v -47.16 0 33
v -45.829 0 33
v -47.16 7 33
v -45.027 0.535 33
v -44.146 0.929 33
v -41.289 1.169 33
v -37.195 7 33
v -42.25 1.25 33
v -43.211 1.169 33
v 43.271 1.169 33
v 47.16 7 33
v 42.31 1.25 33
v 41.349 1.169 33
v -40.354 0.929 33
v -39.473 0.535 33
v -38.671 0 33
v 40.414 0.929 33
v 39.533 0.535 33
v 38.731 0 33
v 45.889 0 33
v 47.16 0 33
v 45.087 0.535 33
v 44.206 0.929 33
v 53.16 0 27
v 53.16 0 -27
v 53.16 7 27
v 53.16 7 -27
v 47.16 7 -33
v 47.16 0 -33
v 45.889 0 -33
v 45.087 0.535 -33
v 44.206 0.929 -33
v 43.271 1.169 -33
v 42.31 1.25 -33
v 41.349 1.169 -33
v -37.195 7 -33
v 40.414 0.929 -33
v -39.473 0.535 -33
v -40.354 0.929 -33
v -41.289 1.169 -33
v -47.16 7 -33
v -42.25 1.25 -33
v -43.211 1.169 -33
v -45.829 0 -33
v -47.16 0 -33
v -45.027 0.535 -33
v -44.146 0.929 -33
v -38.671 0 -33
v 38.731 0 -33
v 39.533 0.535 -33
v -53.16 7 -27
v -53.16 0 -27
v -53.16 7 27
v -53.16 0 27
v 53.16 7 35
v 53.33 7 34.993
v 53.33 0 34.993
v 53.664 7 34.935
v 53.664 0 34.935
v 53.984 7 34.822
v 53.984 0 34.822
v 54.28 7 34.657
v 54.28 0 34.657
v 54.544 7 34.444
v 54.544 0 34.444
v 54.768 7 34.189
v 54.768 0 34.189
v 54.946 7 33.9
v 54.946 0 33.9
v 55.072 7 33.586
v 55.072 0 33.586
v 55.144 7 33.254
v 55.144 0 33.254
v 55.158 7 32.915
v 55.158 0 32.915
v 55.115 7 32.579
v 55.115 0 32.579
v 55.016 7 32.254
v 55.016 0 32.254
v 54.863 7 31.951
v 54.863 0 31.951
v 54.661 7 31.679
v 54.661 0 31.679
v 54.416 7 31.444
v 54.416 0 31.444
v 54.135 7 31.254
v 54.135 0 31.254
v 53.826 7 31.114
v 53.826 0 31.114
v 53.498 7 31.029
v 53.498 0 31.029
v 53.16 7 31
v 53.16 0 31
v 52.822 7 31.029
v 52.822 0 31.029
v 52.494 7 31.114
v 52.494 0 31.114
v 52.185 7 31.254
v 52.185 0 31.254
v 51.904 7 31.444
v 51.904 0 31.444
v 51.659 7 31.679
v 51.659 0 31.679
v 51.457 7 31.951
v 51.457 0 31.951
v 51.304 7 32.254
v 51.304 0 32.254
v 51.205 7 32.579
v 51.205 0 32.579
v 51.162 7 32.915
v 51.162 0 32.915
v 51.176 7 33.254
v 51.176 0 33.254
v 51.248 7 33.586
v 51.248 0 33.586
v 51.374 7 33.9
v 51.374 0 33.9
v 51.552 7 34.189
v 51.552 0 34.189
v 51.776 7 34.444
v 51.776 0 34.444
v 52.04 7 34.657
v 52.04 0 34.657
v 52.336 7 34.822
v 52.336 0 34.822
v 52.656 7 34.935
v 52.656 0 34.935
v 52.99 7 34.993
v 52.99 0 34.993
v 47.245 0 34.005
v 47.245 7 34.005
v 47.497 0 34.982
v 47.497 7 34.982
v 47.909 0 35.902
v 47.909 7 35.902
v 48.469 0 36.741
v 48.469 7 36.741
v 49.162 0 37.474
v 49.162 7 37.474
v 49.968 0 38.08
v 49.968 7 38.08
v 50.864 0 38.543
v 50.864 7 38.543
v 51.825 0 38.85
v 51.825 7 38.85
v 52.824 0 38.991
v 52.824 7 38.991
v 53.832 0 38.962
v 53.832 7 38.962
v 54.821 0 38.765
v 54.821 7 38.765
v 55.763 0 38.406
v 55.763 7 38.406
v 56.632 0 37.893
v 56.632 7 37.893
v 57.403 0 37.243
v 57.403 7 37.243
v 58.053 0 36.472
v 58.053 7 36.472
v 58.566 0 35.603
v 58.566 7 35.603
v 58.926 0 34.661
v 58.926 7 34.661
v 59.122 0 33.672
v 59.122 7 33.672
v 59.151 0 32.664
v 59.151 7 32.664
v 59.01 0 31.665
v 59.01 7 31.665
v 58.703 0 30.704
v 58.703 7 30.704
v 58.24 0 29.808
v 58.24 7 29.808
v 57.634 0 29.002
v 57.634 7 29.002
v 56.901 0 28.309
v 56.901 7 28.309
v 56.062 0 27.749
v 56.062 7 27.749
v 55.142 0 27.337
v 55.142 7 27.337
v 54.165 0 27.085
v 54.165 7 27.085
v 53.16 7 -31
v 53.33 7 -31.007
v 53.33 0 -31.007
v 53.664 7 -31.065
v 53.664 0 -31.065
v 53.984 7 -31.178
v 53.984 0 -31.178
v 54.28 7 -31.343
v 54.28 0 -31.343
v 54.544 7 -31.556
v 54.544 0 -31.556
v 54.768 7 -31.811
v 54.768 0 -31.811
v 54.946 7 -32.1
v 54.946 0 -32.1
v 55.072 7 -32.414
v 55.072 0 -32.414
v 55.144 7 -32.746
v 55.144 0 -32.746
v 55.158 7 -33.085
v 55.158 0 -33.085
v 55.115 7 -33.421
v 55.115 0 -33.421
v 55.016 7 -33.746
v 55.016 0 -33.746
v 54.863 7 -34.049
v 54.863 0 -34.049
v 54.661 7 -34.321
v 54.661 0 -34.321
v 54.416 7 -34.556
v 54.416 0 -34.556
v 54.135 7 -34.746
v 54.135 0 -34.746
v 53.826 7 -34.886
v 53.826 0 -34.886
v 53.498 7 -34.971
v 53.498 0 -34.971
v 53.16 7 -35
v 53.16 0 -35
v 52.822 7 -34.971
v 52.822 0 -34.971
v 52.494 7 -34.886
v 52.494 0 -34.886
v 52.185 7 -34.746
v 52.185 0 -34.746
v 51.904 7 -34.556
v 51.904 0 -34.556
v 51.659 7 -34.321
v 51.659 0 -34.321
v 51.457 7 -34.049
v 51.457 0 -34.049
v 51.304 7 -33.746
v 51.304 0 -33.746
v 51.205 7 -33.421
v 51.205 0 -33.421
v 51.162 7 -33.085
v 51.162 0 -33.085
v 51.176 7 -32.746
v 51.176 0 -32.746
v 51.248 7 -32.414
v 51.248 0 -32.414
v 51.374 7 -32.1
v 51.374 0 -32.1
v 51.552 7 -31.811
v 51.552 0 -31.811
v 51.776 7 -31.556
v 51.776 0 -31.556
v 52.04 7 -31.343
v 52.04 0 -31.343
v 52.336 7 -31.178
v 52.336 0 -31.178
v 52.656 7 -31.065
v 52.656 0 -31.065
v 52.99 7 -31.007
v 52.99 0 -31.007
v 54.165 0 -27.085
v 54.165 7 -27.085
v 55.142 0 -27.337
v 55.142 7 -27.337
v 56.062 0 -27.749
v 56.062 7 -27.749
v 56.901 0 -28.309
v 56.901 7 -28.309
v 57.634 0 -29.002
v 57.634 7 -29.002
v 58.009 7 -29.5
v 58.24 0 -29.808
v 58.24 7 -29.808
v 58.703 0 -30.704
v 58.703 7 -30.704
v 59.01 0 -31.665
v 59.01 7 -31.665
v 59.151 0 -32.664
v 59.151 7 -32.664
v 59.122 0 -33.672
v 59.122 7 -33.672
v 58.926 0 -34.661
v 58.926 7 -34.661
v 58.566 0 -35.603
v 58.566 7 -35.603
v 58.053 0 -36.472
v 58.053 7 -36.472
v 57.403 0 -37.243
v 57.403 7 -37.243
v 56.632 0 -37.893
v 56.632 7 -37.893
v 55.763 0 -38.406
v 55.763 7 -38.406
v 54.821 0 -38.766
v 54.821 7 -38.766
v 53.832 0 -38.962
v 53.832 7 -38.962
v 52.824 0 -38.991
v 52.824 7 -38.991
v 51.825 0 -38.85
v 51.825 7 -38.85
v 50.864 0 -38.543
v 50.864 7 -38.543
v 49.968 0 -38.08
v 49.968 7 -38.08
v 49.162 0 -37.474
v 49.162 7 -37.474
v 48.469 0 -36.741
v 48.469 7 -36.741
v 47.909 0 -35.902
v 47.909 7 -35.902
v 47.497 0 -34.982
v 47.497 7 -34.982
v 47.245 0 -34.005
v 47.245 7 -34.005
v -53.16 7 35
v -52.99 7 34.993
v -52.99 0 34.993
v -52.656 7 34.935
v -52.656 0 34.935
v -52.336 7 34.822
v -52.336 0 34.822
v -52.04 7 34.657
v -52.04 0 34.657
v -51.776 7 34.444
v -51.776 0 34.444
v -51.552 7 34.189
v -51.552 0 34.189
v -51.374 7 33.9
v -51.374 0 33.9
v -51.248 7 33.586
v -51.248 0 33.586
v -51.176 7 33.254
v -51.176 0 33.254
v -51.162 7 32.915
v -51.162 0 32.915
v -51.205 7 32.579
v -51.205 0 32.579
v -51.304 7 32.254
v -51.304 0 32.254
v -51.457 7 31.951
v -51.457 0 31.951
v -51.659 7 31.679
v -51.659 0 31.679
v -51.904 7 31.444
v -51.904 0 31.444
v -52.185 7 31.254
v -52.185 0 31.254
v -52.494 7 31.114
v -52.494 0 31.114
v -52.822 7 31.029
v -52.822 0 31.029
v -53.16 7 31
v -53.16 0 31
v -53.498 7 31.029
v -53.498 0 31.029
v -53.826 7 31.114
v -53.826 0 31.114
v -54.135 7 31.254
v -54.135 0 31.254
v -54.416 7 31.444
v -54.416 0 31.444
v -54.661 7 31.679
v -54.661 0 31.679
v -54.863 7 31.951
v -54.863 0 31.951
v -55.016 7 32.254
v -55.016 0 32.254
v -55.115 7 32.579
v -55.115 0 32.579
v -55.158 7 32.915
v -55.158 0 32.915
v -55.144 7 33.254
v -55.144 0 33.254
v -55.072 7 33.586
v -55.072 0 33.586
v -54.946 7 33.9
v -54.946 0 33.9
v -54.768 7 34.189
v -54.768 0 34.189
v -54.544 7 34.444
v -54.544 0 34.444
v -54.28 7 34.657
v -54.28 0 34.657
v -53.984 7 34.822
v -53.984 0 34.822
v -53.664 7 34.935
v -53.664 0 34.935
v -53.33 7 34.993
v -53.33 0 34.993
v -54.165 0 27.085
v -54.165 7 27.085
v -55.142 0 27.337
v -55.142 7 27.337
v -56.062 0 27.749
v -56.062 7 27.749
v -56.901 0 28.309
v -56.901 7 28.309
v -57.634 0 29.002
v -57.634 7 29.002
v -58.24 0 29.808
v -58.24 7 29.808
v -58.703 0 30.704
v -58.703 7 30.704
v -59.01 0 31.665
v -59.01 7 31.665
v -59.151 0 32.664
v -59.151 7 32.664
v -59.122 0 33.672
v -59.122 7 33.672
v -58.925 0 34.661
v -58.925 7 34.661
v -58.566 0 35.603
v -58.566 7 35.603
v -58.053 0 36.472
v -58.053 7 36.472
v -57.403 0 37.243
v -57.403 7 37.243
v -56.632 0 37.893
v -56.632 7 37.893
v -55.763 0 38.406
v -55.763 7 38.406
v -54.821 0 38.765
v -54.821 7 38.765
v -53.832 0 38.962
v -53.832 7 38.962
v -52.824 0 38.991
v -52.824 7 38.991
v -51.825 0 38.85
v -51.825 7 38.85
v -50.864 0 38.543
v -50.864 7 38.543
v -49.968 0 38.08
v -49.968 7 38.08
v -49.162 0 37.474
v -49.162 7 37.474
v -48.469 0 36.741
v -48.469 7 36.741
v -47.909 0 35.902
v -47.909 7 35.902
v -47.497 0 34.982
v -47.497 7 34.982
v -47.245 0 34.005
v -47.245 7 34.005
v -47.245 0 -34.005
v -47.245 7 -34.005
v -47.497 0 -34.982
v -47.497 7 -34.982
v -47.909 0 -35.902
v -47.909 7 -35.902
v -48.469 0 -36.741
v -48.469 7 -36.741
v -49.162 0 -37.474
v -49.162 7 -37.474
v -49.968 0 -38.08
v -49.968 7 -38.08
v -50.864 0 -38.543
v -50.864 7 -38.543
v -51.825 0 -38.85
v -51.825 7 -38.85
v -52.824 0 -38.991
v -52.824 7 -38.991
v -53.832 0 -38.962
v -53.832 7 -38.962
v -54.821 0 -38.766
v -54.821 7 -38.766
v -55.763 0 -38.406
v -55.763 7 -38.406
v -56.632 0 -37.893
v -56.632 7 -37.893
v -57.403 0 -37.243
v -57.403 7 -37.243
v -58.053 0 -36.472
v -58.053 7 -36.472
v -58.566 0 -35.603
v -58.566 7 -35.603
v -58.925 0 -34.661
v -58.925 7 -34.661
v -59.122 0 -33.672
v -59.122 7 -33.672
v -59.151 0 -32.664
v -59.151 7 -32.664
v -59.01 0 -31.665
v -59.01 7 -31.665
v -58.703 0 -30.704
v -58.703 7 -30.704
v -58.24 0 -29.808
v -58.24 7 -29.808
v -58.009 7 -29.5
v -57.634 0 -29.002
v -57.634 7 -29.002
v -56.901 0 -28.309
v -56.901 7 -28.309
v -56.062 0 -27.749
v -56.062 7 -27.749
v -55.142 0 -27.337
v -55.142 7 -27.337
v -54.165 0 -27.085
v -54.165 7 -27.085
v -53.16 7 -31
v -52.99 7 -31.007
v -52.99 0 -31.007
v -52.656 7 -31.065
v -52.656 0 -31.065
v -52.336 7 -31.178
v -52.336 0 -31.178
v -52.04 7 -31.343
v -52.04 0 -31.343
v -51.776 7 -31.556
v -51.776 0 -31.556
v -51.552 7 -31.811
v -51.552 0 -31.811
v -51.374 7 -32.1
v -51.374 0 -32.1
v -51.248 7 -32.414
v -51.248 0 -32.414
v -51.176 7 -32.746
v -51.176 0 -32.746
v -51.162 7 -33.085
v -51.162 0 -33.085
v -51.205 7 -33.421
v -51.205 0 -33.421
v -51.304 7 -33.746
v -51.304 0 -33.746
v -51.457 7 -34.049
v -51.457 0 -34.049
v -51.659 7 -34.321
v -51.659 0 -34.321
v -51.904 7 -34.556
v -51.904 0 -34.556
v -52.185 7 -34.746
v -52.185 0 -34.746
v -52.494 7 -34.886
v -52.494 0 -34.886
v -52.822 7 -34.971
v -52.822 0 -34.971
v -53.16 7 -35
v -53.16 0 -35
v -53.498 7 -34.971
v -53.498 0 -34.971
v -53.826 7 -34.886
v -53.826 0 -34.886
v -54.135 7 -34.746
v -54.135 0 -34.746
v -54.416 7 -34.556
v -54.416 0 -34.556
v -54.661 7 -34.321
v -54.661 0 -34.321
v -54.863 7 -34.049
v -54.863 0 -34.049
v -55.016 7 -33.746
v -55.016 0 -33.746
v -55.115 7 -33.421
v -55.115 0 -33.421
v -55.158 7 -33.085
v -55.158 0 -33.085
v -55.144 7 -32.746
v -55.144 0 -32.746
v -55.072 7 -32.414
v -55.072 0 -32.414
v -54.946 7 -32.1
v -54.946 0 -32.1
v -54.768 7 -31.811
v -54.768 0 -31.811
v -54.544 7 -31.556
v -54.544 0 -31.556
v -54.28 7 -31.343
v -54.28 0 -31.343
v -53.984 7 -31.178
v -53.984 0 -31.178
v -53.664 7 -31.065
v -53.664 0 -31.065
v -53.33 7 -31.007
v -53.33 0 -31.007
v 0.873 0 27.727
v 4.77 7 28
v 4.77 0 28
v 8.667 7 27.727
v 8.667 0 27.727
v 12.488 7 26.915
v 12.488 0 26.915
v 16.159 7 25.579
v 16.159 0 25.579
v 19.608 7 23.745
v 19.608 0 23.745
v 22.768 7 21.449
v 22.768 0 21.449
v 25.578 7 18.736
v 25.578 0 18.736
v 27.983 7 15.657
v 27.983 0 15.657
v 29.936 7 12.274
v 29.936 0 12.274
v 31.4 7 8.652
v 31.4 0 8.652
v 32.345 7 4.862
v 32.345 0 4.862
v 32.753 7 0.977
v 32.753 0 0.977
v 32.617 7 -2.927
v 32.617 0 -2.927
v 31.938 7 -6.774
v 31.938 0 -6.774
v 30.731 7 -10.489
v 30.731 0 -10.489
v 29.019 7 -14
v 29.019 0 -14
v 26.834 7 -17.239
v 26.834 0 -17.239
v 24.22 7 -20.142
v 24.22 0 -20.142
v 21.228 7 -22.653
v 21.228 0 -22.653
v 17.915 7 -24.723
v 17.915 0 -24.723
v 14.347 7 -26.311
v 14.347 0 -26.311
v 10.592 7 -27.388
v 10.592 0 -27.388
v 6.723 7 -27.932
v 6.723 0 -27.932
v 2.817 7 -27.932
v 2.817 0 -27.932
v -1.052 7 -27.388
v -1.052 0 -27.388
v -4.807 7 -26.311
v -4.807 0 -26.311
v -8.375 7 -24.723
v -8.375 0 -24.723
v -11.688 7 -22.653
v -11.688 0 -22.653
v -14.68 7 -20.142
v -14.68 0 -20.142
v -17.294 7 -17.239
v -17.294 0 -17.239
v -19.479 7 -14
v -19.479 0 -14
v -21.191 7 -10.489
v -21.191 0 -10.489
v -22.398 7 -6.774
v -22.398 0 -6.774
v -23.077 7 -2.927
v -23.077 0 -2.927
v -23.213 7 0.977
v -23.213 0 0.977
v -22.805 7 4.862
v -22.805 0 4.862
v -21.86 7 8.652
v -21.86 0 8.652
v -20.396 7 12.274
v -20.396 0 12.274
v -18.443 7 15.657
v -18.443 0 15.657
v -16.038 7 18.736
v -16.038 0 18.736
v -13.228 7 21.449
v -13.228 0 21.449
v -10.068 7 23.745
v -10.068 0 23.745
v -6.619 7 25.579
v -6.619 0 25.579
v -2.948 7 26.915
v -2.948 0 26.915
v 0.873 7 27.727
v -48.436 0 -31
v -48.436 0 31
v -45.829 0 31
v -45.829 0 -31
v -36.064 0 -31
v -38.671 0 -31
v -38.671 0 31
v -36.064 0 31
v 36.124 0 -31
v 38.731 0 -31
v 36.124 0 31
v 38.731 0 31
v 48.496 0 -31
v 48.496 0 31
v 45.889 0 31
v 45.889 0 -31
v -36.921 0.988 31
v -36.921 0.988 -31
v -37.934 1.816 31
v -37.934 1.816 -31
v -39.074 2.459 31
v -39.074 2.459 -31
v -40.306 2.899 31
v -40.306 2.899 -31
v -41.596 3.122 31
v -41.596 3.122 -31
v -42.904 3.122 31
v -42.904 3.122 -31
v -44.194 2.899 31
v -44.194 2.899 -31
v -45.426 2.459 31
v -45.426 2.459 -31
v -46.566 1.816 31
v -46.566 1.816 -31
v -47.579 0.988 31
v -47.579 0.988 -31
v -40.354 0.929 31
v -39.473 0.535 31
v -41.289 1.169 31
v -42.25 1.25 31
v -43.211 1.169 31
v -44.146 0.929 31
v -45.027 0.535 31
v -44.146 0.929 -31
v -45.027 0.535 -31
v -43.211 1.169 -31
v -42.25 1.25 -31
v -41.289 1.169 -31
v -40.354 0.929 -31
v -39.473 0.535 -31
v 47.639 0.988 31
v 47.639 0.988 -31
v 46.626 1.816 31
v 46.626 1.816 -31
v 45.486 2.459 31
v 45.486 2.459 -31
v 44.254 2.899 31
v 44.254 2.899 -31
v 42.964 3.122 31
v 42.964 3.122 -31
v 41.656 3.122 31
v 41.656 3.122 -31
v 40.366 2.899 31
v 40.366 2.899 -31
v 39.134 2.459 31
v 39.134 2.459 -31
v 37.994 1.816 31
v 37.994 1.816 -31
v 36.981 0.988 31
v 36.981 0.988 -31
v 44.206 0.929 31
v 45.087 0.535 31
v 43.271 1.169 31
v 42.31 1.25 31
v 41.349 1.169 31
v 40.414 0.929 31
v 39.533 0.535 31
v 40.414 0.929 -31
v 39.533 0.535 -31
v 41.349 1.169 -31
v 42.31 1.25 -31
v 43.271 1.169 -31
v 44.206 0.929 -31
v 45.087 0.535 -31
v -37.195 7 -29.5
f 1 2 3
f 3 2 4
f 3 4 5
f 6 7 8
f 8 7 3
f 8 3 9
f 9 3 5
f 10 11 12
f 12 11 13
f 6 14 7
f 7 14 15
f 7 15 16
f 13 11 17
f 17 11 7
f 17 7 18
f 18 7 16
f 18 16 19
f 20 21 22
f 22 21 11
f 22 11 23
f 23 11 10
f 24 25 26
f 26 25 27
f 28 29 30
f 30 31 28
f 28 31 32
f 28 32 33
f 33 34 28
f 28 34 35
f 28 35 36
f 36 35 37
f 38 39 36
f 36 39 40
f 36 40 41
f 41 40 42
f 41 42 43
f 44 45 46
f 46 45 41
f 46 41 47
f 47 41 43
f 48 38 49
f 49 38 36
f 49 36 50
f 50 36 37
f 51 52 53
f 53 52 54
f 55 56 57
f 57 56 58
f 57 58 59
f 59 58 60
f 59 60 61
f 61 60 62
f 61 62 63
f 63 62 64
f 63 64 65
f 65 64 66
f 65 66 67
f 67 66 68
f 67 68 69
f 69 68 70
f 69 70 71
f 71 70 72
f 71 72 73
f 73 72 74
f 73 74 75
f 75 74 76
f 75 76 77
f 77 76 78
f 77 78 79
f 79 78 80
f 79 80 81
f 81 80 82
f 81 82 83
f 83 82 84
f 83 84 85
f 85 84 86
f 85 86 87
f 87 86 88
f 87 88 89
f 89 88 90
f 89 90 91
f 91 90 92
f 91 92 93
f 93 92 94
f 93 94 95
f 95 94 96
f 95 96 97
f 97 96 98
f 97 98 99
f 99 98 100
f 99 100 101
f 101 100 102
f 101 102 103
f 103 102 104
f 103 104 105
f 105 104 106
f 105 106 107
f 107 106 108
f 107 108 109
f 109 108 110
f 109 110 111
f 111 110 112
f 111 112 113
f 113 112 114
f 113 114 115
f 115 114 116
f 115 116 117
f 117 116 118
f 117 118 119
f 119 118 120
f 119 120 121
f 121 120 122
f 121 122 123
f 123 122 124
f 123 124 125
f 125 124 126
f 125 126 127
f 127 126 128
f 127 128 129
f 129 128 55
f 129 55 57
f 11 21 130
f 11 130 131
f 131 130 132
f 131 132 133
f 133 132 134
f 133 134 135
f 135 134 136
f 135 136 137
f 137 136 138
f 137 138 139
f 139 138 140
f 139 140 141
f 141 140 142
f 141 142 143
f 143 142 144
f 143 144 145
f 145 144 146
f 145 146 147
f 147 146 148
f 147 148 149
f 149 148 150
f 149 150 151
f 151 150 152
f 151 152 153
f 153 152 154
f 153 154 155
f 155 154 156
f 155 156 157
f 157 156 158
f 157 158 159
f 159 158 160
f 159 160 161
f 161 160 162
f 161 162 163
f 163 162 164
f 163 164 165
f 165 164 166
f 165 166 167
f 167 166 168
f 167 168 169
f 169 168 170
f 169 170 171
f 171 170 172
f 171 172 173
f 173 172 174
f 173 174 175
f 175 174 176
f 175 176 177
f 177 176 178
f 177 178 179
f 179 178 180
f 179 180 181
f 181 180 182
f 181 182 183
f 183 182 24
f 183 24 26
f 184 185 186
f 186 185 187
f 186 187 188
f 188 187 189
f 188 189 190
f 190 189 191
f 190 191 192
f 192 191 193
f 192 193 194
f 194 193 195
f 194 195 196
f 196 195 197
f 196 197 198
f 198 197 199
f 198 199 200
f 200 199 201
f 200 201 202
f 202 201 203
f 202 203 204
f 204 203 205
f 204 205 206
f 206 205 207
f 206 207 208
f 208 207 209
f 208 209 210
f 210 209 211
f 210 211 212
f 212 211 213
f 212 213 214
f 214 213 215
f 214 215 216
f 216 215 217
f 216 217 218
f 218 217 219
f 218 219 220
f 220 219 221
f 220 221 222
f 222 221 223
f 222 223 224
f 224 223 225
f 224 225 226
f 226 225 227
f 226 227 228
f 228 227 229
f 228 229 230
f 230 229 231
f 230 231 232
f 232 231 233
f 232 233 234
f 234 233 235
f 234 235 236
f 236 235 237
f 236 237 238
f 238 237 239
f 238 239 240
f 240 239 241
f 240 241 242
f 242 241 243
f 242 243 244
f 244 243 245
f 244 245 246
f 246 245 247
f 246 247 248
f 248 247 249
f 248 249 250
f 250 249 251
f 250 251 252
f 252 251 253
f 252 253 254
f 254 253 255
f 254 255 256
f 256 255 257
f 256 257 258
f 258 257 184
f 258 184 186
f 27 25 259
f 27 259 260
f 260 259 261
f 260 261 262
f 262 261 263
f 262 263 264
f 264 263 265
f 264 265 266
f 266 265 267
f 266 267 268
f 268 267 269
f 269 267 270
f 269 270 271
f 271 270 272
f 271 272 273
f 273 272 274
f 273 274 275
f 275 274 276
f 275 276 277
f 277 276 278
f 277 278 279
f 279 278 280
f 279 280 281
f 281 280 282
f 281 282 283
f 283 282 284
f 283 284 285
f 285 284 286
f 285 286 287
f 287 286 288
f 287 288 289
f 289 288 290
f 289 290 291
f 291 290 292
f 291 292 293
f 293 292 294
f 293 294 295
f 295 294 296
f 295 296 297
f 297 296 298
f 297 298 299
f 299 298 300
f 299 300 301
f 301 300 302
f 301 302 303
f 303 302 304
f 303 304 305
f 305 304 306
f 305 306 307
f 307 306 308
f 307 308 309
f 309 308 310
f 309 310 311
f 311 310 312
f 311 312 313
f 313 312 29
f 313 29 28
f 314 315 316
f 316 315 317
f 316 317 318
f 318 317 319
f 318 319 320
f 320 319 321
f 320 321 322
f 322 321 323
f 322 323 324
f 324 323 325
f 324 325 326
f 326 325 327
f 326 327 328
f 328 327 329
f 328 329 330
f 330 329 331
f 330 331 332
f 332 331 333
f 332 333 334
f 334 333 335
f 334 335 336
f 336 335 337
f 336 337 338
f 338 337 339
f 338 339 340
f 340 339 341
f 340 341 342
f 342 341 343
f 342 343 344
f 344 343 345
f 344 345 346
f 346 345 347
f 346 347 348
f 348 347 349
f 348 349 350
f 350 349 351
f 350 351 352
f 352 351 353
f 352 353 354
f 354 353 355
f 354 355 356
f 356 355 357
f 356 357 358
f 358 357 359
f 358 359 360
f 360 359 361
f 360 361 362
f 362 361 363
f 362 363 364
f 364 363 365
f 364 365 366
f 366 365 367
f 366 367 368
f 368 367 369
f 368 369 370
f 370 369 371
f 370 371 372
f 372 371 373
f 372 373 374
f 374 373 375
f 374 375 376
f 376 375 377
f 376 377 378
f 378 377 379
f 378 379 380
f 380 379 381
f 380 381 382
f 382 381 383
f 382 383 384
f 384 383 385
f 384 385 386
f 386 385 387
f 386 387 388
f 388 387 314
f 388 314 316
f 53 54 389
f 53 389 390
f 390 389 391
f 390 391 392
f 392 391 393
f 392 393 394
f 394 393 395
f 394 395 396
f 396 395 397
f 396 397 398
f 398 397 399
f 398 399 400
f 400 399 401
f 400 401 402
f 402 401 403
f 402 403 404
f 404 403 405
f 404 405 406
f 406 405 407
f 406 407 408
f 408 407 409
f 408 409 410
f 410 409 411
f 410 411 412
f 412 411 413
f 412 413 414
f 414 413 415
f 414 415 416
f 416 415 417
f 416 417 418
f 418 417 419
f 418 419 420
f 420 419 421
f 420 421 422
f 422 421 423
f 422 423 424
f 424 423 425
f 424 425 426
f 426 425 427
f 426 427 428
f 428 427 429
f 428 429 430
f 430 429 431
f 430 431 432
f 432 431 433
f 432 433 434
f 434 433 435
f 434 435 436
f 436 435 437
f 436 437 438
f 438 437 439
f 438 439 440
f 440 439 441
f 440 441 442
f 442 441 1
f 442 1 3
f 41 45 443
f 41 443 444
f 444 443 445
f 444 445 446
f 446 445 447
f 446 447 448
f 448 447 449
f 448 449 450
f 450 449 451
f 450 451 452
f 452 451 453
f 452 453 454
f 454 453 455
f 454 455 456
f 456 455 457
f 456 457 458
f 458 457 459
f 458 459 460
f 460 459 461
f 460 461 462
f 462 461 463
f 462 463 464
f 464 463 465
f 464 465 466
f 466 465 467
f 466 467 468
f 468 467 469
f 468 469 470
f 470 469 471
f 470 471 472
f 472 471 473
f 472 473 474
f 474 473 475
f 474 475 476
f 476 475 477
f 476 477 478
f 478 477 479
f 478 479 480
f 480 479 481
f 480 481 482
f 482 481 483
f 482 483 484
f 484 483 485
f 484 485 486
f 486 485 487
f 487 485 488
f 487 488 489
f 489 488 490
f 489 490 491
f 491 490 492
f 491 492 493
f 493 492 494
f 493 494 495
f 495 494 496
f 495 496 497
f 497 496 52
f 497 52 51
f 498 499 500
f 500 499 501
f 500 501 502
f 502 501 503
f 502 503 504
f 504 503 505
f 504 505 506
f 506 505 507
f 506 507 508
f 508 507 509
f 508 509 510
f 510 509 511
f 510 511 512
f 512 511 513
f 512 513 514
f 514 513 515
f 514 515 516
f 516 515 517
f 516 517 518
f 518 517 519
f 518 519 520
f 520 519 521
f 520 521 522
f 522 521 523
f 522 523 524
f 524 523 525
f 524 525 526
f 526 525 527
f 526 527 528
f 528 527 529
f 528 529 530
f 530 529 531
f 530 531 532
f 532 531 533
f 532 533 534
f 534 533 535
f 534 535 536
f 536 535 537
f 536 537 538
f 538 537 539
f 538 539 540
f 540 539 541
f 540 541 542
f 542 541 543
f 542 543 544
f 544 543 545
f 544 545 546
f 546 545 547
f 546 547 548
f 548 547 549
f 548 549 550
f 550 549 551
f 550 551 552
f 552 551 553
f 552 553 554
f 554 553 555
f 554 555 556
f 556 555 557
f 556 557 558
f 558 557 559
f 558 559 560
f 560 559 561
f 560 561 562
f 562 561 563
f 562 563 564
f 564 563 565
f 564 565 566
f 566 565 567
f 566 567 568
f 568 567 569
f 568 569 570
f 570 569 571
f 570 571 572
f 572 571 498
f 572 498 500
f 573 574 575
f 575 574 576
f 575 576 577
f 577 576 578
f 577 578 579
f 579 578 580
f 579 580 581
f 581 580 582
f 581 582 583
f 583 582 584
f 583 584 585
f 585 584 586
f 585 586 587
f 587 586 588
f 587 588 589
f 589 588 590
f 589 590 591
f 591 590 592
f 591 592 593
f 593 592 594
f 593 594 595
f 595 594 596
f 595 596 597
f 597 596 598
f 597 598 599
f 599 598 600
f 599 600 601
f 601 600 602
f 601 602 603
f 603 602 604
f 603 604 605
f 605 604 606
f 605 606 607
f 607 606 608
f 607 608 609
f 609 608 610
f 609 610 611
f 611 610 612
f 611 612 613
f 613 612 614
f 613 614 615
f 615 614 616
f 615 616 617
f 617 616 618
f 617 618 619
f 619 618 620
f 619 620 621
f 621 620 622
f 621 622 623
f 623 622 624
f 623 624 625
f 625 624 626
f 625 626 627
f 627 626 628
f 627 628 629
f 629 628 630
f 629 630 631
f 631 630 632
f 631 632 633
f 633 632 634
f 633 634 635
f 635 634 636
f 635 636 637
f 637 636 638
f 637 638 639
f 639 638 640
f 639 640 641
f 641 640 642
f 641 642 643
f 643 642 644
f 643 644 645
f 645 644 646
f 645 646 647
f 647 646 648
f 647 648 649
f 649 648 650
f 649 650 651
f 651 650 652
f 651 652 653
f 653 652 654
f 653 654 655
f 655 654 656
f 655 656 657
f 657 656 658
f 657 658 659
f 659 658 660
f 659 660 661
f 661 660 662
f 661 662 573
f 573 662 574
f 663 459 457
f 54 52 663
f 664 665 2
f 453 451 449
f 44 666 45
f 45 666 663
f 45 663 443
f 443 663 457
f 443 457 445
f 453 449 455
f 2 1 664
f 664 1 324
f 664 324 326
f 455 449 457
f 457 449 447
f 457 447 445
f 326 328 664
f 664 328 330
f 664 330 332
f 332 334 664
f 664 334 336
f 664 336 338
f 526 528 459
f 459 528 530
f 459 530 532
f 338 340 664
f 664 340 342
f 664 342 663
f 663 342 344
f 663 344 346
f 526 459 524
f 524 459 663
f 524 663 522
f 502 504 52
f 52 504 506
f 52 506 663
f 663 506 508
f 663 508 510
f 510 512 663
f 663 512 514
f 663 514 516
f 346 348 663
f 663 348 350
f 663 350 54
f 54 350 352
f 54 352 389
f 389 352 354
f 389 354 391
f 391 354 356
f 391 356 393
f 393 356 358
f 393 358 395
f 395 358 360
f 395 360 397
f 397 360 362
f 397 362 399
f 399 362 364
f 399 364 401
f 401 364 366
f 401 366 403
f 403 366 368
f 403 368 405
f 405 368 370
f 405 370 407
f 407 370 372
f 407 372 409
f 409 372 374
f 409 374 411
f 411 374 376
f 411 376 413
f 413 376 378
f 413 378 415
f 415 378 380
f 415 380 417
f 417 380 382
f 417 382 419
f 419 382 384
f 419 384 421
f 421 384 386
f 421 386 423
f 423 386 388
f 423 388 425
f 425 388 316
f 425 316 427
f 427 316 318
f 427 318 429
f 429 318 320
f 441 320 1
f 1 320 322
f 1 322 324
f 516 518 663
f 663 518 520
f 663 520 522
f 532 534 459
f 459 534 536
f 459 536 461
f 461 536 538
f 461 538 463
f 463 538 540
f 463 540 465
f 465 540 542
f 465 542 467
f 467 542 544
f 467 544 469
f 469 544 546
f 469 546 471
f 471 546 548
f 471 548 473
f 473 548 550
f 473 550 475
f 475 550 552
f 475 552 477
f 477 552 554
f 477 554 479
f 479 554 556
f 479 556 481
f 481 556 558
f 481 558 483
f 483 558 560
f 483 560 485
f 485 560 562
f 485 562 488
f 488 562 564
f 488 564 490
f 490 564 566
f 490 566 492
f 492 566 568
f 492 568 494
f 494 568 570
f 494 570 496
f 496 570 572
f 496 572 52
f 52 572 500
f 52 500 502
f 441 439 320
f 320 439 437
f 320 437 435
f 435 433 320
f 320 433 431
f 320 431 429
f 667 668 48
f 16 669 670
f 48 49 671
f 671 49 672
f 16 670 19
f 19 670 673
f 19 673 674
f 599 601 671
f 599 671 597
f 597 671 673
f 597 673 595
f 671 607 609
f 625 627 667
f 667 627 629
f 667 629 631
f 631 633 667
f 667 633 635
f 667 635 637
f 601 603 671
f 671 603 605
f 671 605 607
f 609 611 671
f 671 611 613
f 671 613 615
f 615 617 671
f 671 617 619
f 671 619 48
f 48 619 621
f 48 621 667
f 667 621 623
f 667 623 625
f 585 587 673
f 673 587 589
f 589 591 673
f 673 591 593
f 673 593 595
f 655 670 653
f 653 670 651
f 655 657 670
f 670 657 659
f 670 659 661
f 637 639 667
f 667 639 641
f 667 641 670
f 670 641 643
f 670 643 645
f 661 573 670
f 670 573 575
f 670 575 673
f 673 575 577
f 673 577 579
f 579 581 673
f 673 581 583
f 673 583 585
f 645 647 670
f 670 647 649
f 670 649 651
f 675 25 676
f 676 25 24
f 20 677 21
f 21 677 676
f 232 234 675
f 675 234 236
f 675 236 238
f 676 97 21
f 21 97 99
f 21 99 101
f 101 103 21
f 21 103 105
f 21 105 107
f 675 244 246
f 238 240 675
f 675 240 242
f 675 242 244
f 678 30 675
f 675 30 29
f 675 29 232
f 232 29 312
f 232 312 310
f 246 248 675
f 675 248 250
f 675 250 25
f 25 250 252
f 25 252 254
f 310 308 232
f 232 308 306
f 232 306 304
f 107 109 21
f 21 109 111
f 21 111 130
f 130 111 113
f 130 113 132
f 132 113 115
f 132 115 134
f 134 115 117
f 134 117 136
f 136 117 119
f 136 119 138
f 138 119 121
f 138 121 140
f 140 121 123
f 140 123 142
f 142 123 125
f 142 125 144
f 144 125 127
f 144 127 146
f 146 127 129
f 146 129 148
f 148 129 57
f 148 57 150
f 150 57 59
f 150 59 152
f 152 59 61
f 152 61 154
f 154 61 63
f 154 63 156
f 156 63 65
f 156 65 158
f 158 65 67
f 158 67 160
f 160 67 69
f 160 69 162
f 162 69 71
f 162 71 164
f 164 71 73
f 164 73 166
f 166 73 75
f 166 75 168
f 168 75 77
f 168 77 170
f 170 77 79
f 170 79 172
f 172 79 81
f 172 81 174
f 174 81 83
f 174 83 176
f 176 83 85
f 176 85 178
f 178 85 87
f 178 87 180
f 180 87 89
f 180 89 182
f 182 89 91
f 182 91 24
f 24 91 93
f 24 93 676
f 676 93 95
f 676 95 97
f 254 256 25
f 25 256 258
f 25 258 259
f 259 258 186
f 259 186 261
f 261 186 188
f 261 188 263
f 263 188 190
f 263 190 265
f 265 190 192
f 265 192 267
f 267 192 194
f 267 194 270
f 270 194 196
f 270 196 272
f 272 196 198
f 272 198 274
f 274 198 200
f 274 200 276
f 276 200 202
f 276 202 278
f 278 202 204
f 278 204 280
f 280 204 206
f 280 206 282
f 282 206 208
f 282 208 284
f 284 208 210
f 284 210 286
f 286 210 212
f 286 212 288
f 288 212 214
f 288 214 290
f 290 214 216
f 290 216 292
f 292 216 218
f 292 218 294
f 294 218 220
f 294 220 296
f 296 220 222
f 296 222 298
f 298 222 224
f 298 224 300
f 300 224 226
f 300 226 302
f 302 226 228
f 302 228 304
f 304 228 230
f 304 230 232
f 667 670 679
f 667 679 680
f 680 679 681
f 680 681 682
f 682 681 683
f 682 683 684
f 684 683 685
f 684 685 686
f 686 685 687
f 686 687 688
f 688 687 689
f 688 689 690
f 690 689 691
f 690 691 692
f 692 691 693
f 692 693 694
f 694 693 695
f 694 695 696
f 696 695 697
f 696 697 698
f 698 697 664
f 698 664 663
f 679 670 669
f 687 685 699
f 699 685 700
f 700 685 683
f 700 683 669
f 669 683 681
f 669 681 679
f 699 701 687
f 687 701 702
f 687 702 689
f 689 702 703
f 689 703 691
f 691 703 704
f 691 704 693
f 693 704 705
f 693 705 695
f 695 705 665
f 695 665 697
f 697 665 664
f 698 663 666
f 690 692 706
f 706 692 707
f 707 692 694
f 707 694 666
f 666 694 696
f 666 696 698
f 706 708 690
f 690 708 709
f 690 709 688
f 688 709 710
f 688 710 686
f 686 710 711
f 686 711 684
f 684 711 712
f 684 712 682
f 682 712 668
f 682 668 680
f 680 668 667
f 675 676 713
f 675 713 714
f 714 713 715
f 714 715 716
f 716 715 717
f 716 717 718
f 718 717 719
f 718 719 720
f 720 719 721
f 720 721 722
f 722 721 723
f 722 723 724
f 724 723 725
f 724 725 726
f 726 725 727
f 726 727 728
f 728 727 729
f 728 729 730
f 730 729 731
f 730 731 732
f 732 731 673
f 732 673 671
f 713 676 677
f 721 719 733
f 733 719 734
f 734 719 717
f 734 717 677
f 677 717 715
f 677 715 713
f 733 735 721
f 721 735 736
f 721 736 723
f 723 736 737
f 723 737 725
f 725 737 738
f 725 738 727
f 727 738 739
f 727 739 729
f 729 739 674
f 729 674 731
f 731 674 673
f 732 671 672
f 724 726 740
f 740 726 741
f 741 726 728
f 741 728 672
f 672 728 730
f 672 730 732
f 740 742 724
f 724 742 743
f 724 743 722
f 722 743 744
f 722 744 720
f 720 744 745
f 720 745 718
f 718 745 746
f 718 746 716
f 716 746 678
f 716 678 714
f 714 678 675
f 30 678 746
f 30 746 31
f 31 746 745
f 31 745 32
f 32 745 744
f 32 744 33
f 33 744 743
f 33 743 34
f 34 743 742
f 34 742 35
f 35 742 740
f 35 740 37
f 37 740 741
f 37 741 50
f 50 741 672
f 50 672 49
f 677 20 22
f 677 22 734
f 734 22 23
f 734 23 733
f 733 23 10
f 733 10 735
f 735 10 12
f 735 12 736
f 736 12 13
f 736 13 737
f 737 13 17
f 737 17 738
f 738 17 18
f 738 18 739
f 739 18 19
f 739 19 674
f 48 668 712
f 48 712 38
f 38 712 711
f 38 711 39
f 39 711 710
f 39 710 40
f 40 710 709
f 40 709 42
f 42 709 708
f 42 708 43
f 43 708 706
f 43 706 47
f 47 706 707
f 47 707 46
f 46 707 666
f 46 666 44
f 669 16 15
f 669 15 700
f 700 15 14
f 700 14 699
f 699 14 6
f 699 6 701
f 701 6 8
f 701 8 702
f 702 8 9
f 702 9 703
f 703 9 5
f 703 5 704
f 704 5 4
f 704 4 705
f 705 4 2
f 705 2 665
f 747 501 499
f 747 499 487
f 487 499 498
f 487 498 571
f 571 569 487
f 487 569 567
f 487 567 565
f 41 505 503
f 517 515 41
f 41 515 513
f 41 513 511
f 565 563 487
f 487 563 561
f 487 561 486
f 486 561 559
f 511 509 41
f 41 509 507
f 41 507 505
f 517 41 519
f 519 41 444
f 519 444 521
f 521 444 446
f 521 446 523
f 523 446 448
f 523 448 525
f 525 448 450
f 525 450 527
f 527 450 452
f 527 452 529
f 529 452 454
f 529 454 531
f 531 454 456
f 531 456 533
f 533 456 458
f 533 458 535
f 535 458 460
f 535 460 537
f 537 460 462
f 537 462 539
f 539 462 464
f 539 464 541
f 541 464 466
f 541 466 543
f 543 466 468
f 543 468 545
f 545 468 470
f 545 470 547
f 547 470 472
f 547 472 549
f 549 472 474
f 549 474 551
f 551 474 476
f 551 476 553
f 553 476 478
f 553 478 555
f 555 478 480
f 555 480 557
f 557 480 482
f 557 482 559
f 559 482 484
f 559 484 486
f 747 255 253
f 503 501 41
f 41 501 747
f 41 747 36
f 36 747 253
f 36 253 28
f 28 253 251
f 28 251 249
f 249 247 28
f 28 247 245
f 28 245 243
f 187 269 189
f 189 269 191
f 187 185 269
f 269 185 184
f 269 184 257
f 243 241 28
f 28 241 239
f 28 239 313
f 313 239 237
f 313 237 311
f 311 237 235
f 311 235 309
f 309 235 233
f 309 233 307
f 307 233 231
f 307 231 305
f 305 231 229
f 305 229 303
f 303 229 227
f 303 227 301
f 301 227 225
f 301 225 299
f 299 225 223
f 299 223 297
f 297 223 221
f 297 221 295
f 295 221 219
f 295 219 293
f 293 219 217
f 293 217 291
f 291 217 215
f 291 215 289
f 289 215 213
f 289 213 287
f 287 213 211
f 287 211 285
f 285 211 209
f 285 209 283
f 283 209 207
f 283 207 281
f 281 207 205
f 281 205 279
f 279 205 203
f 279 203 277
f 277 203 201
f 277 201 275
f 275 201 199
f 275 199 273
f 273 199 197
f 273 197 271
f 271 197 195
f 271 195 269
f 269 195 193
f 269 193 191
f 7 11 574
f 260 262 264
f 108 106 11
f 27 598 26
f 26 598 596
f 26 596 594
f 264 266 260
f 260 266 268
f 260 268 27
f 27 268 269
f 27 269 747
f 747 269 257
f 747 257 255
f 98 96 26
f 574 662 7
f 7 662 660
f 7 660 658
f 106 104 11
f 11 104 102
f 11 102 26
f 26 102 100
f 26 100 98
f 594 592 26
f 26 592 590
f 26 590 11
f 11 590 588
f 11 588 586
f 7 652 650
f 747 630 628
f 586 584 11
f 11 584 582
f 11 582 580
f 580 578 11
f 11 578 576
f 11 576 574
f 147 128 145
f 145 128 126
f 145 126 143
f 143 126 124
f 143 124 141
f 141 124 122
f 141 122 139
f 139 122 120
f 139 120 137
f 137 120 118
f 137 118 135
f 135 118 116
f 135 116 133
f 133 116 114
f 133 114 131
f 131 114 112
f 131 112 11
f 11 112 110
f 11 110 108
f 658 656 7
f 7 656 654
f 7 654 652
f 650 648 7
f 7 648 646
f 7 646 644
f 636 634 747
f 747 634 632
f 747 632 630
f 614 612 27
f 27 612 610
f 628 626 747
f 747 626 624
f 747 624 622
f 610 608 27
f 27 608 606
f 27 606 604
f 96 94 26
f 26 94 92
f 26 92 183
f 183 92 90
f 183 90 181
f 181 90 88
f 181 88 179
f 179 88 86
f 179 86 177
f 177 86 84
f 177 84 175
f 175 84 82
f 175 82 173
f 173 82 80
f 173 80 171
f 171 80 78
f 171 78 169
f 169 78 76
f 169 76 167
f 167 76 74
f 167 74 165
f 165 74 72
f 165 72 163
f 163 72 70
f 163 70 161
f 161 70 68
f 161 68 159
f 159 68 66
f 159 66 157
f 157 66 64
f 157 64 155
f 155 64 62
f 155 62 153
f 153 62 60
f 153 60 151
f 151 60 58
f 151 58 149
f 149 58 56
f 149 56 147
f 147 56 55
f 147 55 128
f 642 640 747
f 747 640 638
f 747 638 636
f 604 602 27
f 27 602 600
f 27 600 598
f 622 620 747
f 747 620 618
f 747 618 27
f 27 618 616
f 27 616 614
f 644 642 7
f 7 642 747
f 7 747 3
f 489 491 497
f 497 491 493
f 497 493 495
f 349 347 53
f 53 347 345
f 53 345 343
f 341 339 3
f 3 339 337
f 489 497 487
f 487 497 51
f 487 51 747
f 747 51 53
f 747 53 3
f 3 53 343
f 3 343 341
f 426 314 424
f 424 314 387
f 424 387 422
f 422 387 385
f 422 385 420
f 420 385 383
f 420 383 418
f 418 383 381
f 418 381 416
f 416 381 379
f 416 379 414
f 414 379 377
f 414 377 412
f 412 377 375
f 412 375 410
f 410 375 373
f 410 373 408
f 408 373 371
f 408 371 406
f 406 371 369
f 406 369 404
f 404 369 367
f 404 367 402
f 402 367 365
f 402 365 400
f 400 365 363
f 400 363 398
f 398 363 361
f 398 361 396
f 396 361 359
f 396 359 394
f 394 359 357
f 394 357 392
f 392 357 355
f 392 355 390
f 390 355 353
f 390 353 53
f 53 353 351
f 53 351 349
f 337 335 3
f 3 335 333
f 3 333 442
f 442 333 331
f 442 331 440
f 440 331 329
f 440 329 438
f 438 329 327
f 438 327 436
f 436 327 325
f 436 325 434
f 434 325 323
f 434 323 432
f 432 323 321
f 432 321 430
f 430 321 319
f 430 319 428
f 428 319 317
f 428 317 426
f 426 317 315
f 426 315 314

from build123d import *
from build123d.topology import SkipClean

# Parameters (mm, degrees)
SKETCH1_W               = 21.76
SKETCH1_H               = 66
SKETCH1_W_2             = 62.8
BOSS_EXTRUDE1_DEPTH     = 10
SKETCH1_5_W             = 62.8
SKETCH1_5_H             = 66
CUT_EXTRUDE1_DEPTH      = 5
SKETCH3_R               = 7.65
SKETCH3_R_2             = 5.75
CUT_EXTRUDE2_DEPTH      = 62
CUT_EXTRUDE3_DEPTH      = 84.797288739
CUT_EXTRUDE3_DEPTH_BACK = 84.797288739
SKETCH3_3_R             = 5.75
BOSS_EXTRUDE2_DEPTH     = 10
CUT_EXTRUDE4_DEPTH      = 72.560503073
SKETCH5_R               = 28
CUT_EXTRUDE5_DEPTH      = 72.560503073
BOSS_EXTRUDE3_DEPTH     = 5
CUT_EXTRUDE6_START      = -3
CUT_EXTRUDE6_DEPTH      = 3


with BuildPart() as part:
    # Sketch1 → Boss-Extrude1 (new body)
    with BuildSketch(Plane(origin=(0, 0, 0), x_dir=(1, 0, 0), z_dir=(0, 1, 0))):
        with Locations((-42.28, 0)):
            Rectangle(SKETCH1_W, SKETCH1_H)
        Rectangle(SKETCH1_W_2, SKETCH1_H)
        with Locations((42.28, 0)):
            Rectangle(SKETCH1_W, SKETCH1_H)
    extrude(amount=BOSS_EXTRUDE1_DEPTH)

    # Sketch1<5> → Cut-Extrude1 (cut)
    with BuildSketch(Plane(origin=(0, 0, 0), x_dir=(1, 0, 0), z_dir=(0, 1, 0))):
        Rectangle(SKETCH1_5_W, SKETCH1_5_H)
    extrude(amount=CUT_EXTRUDE1_DEPTH, mode=Mode.SUBTRACT)

    # Sketch3 → Cut-Extrude2 (cut)
    # profile 1 of 4: a face of its own
    with BuildSketch(Plane.XY.offset(31)):
        with Locations((-42.25, -4.5)):
            Circle(SKETCH3_R)
        with Locations((-42.25, -4.5)):
            Circle(SKETCH3_R_2, mode=Mode.SUBTRACT)
    # profile 2 of 4: a face of its own
    with BuildSketch(Plane.XY.offset(31)):
        with Locations((-42.25, -4.5)):
            Circle(SKETCH3_R_2)
    # profile 3 of 4: a face of its own
    with BuildSketch(Plane.XY.offset(31)):
        with Locations((42.31, -4.5)):
            Circle(SKETCH3_R)
        with Locations((42.31, -4.5)):
            Circle(SKETCH3_R_2, mode=Mode.SUBTRACT)
    # profile 4 of 4: a face of its own
    with BuildSketch(Plane.XY.offset(31)):
        with Locations((42.31, -4.5)):
            Circle(SKETCH3_R_2)
    extrude(amount=-CUT_EXTRUDE2_DEPTH, mode=Mode.SUBTRACT)

    # Sketch3<3> → Cut-Extrude3 (cut, two sides: drawn at the far end of the back side and taken through both)
    with BuildSketch(Plane.XY.offset(31).offset(-CUT_EXTRUDE3_DEPTH_BACK)):
        with Locations((42.31, -4.5)):
            Circle(SKETCH3_3_R)
        with Locations((-42.25, -4.5)):
            Circle(SKETCH3_3_R)
    extrude(amount=CUT_EXTRUDE3_DEPTH + CUT_EXTRUDE3_DEPTH_BACK, mode=Mode.SUBTRACT)

    # Sketch4 → Boss-Extrude2 (add)
    with BuildSketch(Plane.XZ):
        with BuildLine():
            Line((-51.16, 33), (-47.16, 33))
            ThreePointArc((-47.16, 33), (-57.402640687, 37.242640687), (-53.16, 27))
            Line((-53.16, 27), (-53.16, 31))
            ThreePointArc((-53.16, 31), (-54.574213562, 34.414213562), (-51.16, 33))
        make_face()
        with BuildLine():
            ThreePointArc((-53.16, -27), (-57.402640687, -37.242640687), (-47.16, -33))
            Line((-47.16, -33), (-51.16, -33))
            ThreePointArc((-51.16, -33), (-54.574213562, -34.414213562), (-53.16, -31))
            Line((-53.16, -31), (-53.16, -27))
        make_face()
        with BuildLine():
            ThreePointArc((47.16, -33), (57.402640687, -37.242640687), (53.16, -27))
            Line((53.16, -27), (53.16, -31))
            ThreePointArc((53.16, -31), (54.574213562, -34.414213562), (51.16, -33))
            Line((51.16, -33), (47.16, -33))
        make_face()
        with BuildLine():
            ThreePointArc((53.16, 27), (57.402640687, 37.242640687), (47.16, 33))
            Line((47.16, 33), (51.16, 33))
            ThreePointArc((51.16, 33), (54.574213562, 34.414213562), (53.16, 31))
            Line((53.16, 31), (53.16, 27))
        make_face()
    extrude(amount=-BOSS_EXTRUDE2_DEPTH)

    # Sketch4<3> → Cut-Extrude4 (cut, through all)
    with SkipClean():  # the faces are left unmerged after this step: merging them gives an invalid solid
        with BuildSketch(Plane.XZ):
            with BuildLine():
                ThreePointArc((51.16, 33), (51.745786438, 31.585786438), (53.16, 31))
                Line((53.16, 31), (53.16, 33))
                Line((53.16, 33), (51.16, 33))
            make_face()
            with BuildLine():
                Line((53.16, 33), (53.16, 31))
                ThreePointArc((53.16, 31), (54.574213562, 31.585786438), (55.16, 33))
                ThreePointArc((55.16, 33), (53.16, 35), (51.16, 33))
                Line((51.16, 33), (53.16, 33))
            make_face()
            with BuildLine():
                ThreePointArc((55.16, -33), (54.574213562, -31.585786438), (53.16, -31))
                Line((53.16, -31), (53.16, -33))
                Line((53.16, -33), (51.16, -33))
                ThreePointArc((51.16, -33), (53.16, -35), (55.16, -33))
            make_face()
            with BuildLine():
                Line((53.16, -33), (53.16, -31))
                ThreePointArc((53.16, -31), (51.745786438, -31.585786438), (51.16, -33))
                Line((51.16, -33), (53.16, -33))
            make_face()
            with BuildLine():
                ThreePointArc((-53.16, -31), (-54.574213562, -34.414213562), (-51.16, -33))
                Line((-51.16, -33), (-53.16, -33))
                Line((-53.16, -33), (-53.16, -31))
            make_face()
            with BuildLine():
                Line((-53.16, -33), (-51.16, -33))
                ThreePointArc((-51.16, -33), (-51.745786438, -31.585786438), (-53.16, -31))
                Line((-53.16, -31), (-53.16, -33))
            make_face()
            with BuildLine():
                ThreePointArc((-53.16, 31), (-51.745786438, 31.585786438), (-51.16, 33))
                Line((-51.16, 33), (-53.16, 33))
                Line((-53.16, 33), (-53.16, 31))
            make_face()
            with BuildLine():
                Line((-53.16, 33), (-51.16, 33))
                ThreePointArc((-51.16, 33), (-54.574213562, 34.414213562), (-53.16, 31))
                Line((-53.16, 31), (-53.16, 33))
            make_face()
        extrude(amount=-CUT_EXTRUDE4_DEPTH, mode=Mode.SUBTRACT)

    # Sketch5 → Cut-Extrude5 (cut, through all)
    with SkipClean():  # the faces are left unmerged after this step: merging them gives an invalid solid
        with BuildSketch(Plane(origin=(0, 10, 0), x_dir=(1, 0, 0), z_dir=(0, 1, 0))):
            with Locations(Location((4.77, 0, 0), (0, 0, 270))):
                Circle(SKETCH5_R)
        extrude(amount=-CUT_EXTRUDE5_DEPTH, mode=Mode.SUBTRACT)

    # Sketch6 → Boss-Extrude3 (add)
    with SkipClean():  # the faces are left unmerged after this step: merging them gives an invalid solid
        with BuildSketch(Plane.XZ.offset(-5)):
            with BuildLine():
                Line((31.4, -33), (31.4, -8.651190669))
                ThreePointArc((31.4, -8.651190669), (-23.23, 0), (31.4, 8.651190669))
                Line((31.4, 8.651190669), (31.4, 33))
                Line((31.4, 33), (-31.4, 33))
                Line((-31.4, 33), (-31.4, -33))
                Line((-31.4, -33), (31.4, -33))
            make_face()
        extrude(amount=BOSS_EXTRUDE3_DEPTH)

    # Sketch8 → Cut-Extrude6 (cut)
    with SkipClean():  # the faces are left unmerged after this step: merging them gives an invalid solid
        with BuildSketch(Plane(origin=(0, 10, 0), x_dir=(1, 0, 0), z_dir=(0, 1, 0)).offset(CUT_EXTRUDE6_START)):
            with BuildLine():
                Line((-53.16, 27), (-53.16, -27))
                ThreePointArc((-53.16, -27), (-57.402640687, -37.242640687), (-47.16, -33))
                Line((-47.16, -33), (47.16, -33))
                ThreePointArc((47.16, -33), (57.402640687, -37.242640687), (53.16, -27))
                Line((53.16, -27), (53.16, 27))
                ThreePointArc((53.16, 27), (57.402640687, 37.242640687), (47.16, 33))
                Line((47.16, 33), (-47.16, 33))
                ThreePointArc((-47.16, 33), (-57.402640687, 37.242640687), (-53.16, 27))
            make_face()
        extrude(amount=CUT_EXTRUDE6_DEPTH, mode=Mode.SUBTRACT)


solid = part.part
